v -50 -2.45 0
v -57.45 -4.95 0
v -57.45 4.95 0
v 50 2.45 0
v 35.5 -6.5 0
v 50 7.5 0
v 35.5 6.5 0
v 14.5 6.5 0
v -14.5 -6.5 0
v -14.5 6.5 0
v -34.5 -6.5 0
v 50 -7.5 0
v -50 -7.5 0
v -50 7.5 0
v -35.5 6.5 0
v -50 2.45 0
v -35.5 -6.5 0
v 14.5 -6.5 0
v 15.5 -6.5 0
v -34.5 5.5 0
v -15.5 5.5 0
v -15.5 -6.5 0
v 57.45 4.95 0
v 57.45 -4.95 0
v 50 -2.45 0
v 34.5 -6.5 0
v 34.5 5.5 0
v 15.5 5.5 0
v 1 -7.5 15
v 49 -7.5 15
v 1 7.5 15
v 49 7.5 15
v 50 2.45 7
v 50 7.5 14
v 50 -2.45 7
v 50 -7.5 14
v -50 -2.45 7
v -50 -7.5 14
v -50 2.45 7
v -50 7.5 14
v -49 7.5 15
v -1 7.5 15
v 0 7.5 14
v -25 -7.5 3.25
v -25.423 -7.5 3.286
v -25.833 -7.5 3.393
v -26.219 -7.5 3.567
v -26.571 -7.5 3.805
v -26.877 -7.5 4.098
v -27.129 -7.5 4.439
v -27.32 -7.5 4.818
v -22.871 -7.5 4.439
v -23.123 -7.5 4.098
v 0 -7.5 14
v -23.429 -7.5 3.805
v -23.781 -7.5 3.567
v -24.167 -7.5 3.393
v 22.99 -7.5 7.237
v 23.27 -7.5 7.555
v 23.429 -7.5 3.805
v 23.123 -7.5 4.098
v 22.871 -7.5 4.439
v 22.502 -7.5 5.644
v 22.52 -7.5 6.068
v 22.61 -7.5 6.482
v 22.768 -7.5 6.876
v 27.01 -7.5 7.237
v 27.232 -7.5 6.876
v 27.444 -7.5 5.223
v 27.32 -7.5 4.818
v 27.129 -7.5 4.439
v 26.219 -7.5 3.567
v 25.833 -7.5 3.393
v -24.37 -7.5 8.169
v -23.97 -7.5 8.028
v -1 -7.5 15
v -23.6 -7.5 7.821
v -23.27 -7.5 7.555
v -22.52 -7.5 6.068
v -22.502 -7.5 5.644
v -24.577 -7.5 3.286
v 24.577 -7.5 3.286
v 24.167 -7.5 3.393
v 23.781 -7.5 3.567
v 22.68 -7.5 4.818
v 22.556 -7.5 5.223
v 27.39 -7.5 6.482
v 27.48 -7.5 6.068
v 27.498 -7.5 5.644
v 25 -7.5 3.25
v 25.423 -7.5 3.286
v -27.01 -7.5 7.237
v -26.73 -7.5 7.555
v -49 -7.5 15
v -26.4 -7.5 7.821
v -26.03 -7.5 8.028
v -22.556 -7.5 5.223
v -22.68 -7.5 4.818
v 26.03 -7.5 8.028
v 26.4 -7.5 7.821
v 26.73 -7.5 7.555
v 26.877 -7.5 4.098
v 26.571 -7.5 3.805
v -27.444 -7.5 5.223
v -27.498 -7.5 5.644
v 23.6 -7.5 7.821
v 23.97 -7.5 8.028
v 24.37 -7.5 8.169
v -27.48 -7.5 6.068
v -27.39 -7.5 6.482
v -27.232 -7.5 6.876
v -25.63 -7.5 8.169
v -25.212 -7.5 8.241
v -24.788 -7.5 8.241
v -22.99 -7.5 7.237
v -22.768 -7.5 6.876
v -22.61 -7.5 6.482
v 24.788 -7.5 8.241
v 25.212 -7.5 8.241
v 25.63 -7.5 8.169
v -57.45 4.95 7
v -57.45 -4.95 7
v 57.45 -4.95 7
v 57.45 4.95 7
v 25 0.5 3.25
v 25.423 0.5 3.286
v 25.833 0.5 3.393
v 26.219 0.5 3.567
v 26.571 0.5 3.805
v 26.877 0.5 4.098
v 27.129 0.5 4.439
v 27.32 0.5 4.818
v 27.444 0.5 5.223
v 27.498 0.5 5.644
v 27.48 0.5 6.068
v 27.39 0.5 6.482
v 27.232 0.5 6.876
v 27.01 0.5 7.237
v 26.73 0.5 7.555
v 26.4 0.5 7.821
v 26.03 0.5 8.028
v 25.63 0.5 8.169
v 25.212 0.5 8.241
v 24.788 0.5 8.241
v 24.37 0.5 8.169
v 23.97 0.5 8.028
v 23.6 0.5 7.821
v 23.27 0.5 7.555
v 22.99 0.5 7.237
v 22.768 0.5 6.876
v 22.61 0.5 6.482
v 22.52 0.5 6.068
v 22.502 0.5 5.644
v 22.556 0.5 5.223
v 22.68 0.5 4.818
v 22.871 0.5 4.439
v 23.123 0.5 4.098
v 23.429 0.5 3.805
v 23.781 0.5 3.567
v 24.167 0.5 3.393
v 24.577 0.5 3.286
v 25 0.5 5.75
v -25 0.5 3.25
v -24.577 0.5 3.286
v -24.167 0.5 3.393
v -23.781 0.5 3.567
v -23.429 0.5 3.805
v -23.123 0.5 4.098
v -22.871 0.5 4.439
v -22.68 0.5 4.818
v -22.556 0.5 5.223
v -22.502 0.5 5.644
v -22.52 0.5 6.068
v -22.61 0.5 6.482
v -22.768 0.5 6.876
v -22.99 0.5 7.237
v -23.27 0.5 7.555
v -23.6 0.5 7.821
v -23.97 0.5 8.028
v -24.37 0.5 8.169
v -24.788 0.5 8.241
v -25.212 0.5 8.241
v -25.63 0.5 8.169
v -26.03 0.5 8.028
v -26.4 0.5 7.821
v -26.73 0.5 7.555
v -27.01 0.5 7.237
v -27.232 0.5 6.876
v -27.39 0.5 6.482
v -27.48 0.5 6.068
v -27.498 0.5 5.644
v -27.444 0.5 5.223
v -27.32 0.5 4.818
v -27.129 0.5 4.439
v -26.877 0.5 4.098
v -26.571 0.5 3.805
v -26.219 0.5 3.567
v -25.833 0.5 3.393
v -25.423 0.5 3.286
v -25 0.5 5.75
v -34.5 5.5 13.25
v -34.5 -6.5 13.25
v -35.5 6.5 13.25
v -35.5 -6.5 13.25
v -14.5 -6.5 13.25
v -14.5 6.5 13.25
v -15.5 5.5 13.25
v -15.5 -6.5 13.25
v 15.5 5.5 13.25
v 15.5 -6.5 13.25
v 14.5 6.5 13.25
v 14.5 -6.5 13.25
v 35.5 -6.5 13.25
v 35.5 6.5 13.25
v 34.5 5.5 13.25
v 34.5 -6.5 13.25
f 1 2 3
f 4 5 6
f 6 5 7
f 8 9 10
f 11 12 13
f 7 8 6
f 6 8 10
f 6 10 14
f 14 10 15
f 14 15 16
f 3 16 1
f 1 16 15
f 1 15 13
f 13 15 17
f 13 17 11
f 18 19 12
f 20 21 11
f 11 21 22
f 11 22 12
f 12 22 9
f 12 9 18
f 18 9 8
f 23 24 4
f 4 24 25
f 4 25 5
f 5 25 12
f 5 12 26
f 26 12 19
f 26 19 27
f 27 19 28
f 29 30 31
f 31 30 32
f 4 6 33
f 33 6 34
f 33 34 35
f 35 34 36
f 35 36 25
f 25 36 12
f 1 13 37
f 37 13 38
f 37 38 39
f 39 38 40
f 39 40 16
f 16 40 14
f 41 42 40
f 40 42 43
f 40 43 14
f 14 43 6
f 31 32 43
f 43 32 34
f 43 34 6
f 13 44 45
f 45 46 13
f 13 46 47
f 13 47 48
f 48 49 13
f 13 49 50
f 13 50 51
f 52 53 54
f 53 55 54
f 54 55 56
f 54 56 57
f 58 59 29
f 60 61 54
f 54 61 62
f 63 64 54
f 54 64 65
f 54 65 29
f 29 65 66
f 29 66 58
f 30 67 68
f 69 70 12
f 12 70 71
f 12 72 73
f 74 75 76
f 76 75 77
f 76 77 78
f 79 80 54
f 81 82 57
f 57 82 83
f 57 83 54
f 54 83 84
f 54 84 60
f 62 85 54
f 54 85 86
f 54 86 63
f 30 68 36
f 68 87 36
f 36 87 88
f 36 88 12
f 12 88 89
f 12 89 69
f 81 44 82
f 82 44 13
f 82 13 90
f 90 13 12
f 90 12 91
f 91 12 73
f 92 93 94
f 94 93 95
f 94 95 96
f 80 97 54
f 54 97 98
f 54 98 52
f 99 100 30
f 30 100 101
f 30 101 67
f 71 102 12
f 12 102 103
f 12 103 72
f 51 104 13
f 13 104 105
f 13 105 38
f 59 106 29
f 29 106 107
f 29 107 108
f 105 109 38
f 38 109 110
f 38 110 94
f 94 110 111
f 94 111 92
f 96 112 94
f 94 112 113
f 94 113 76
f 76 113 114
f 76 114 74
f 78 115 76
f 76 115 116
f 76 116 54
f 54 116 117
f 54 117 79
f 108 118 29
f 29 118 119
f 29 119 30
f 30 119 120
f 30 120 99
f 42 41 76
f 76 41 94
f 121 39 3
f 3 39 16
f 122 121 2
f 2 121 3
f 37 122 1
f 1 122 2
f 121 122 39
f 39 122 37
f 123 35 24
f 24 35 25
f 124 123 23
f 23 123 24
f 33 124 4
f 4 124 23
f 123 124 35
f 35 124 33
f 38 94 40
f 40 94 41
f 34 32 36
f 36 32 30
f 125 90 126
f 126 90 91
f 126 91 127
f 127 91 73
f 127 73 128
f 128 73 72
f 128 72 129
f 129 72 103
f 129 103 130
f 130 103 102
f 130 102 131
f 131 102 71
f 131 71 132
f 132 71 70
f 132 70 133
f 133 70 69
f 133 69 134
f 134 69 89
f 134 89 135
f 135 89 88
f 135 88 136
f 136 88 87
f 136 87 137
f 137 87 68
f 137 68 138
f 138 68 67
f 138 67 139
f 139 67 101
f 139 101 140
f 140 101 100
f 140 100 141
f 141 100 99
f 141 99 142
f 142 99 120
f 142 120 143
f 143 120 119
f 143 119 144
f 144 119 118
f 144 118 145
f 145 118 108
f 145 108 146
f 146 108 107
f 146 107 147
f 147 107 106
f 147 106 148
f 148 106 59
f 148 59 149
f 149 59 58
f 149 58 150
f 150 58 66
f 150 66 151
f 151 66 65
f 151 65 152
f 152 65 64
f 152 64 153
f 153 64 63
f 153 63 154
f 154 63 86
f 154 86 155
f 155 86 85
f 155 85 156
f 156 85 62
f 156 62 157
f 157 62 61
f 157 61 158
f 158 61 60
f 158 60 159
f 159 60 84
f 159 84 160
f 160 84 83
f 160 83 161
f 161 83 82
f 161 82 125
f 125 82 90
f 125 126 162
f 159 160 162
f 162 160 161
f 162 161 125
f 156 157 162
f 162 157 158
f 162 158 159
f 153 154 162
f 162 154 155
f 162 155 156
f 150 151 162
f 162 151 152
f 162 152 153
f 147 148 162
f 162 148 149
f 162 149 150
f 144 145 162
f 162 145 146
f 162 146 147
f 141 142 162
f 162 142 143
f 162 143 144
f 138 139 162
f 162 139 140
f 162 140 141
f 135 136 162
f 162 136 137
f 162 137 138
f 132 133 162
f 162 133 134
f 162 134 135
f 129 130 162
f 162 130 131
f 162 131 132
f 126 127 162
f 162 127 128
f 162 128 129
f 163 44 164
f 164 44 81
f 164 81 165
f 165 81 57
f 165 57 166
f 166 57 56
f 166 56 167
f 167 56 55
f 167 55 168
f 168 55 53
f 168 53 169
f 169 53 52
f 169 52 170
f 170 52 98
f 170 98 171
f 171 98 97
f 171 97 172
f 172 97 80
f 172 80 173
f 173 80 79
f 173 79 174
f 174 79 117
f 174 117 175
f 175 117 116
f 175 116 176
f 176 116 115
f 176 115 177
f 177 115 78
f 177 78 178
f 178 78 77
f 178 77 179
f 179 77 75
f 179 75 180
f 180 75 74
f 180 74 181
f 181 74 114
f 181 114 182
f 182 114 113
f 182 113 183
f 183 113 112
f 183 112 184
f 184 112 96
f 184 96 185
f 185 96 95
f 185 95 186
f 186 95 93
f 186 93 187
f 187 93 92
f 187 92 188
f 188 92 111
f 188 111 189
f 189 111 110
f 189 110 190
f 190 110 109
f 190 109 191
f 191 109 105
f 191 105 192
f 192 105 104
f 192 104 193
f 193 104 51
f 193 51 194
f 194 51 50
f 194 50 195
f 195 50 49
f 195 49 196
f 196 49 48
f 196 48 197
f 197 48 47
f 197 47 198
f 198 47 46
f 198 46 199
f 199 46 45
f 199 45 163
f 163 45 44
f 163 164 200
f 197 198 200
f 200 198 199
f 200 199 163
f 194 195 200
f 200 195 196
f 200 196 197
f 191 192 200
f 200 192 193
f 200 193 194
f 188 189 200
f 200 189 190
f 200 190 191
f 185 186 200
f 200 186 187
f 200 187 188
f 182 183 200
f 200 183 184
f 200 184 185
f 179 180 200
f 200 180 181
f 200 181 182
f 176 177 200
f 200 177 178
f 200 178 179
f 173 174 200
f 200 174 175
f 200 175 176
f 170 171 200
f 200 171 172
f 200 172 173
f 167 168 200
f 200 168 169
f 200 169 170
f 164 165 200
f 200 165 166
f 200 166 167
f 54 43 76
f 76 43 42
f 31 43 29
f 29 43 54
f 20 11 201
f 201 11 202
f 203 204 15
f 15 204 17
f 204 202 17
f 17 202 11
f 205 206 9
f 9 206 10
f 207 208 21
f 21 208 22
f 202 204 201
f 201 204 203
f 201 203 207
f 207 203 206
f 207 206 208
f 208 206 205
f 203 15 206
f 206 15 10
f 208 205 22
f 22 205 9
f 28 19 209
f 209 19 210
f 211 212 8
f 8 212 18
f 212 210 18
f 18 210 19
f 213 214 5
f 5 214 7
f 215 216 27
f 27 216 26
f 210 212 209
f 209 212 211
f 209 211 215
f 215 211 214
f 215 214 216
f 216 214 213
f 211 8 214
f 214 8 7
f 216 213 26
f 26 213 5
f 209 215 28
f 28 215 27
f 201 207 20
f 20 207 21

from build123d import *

# Parameters (mm, degrees)
SKETCH1_W              = 100
SKETCH1_H              = 15
BODY_DEPTH             = 15
CLICK_DEPTH            = 7
CLICK_CHAMFER_SIZE     = 1
SKETCH3_R              = 2.5
LED_HOLE_DEPTH         = 8
SKETCH4_W              = 2
SKETCH4_H              = 15
FIELDMARK_DEPTH        = 2
FIELDMARK_CHAMFER_SIZE = 2
LIGHT_START            = -1
SKETCH6_W              = 1
SKETCH6_H              = 15
LIGHT_GUIDE_DEPTH      = 13
SKETCH7_W              = 19
SKETCH7_H              = 1
CUT_EXTRUDE1_DEPTH     = 13.25


with BuildPart() as part:
    # Sketch1 → Body (new body)
    with BuildSketch(Plane.XY):
        Rectangle(SKETCH1_W, SKETCH1_H)
    extrude(amount=BODY_DEPTH)

    # Sketch2 → Click (add)
    with BuildSketch(Plane.XY):
        Polygon((-50, 0), (-50, 2.45), (-57.45, 4.95), (-57.45, 0), (-57.45, -4.95), (-50, -2.45), align=None)
        Polygon((57.45, 0), (57.45, -4.95), (50, -2.45), (50, 0), (50, 2.45), (57.45, 4.95), align=None)
    extrude(amount=CLICK_DEPTH)

    # Click Chamfer
    click_chamfer_edges = [part.edges().sort_by_distance(p)[0] for p in [
        (-50, 0, 15),
        (50, 0, 15),
    ]]
    chamfer(click_chamfer_edges, length=CLICK_CHAMFER_SIZE)

    # Sketch3 → LED Hole (cut)
    with BuildSketch(Plane.XZ.offset(7.5)):
        with Locations(Location((-25, 5.75, 0), (0, 0, 270))):
            Circle(SKETCH3_R)
        with Locations(Location((25, 5.75, 0), (0, 0, 270))):
            Circle(SKETCH3_R)
    extrude(amount=-LED_HOLE_DEPTH, mode=Mode.SUBTRACT)

    # Sketch4 → FieldMark (cut)
    with BuildSketch(Plane.XY.offset(15)):
        Rectangle(SKETCH4_W, SKETCH4_H)
    extrude(amount=-FIELDMARK_DEPTH, mode=Mode.SUBTRACT)

    # FieldMark Chamfer
    # the kernel refuses this chamfer: 2 mm, written as the material it adds along each edge
    with BuildSketch(Plane(origin=(1, -7.5, 13), x_dir=(0.02749587661058638, 0, 0.9996219169112968), z_dir=(0, 1, 0))) as fieldmark_chamfer_piece_1_section:
        Polygon((FIELDMARK_CHAMFER_SIZE * 0.999621916911, -FIELDMARK_CHAMFER_SIZE * 0.0274958766106), (-FIELDMARK_CHAMFER_SIZE * 0.0274958766106, -FIELDMARK_CHAMFER_SIZE * 0.999621916911), (0, 0), align=None)
    fieldmark_chamfer_piece_1 = extrude(amount=15, mode=Mode.PRIVATE)
    fieldmark_chamfer_piece_1 = split(fieldmark_chamfer_piece_1, bisect_by=Plane(origin=(0.339191691, 0, 15), z_dir=(0, 0, -1)), keep=Keep.TOP, mode=Mode.PRIVATE)
    add(fieldmark_chamfer_piece_1)
    with BuildSketch(Plane(origin=(-1, 7.5, 13), x_dir=(0.9996219169112968, 0, -0.027495876610586487), z_dir=(0, -1, 0))) as fieldmark_chamfer_piece_2_section:
        Polygon((FIELDMARK_CHAMFER_SIZE * 0.999621916911, FIELDMARK_CHAMFER_SIZE * 0.0274958766106), (-FIELDMARK_CHAMFER_SIZE * 0.0274958766106, FIELDMARK_CHAMFER_SIZE * 0.999621916911), (0, 0), align=None)
    fieldmark_chamfer_piece_2 = extrude(amount=15, mode=Mode.PRIVATE)
    fieldmark_chamfer_piece_2 = split(fieldmark_chamfer_piece_2, bisect_by=Plane(origin=(-0.339191691, 0, 15), z_dir=(0, 0, -1)), keep=Keep.TOP, mode=Mode.PRIVATE)
    add(fieldmark_chamfer_piece_2)

    # Sketch6 → Light Guide (cut)
    with BuildSketch(Plane.XZ.offset(7.5).offset(LIGHT_START)):
        with Locations((35, 5.75)):
            Rectangle(SKETCH6_W, SKETCH6_H)
        with Locations((15, 5.75)):
            Rectangle(SKETCH6_W, SKETCH6_H)
        with Locations((-15, 5.75)):
            Rectangle(SKETCH6_W, SKETCH6_H)
        with Locations((-35, 5.75)):
            Rectangle(SKETCH6_W, SKETCH6_H)
    extrude(amount=-LIGHT_GUIDE_DEPTH, mode=Mode.SUBTRACT)

    # Sketch7 → Cut-Extrude1 (cut)
    with BuildSketch(Plane(origin=(0, 0, 0), x_dir=(-1, 0, 0), z_dir=(0, 0, -1))):
        with Locations((25, 6)):
            Rectangle(SKETCH7_W, SKETCH7_H)
        with Locations((-25, 6)):
            Rectangle(SKETCH7_W, SKETCH7_H)
    extrude(amount=-CUT_EXTRUDE1_DEPTH, mode=Mode.SUBTRACT)


solid = part.part
